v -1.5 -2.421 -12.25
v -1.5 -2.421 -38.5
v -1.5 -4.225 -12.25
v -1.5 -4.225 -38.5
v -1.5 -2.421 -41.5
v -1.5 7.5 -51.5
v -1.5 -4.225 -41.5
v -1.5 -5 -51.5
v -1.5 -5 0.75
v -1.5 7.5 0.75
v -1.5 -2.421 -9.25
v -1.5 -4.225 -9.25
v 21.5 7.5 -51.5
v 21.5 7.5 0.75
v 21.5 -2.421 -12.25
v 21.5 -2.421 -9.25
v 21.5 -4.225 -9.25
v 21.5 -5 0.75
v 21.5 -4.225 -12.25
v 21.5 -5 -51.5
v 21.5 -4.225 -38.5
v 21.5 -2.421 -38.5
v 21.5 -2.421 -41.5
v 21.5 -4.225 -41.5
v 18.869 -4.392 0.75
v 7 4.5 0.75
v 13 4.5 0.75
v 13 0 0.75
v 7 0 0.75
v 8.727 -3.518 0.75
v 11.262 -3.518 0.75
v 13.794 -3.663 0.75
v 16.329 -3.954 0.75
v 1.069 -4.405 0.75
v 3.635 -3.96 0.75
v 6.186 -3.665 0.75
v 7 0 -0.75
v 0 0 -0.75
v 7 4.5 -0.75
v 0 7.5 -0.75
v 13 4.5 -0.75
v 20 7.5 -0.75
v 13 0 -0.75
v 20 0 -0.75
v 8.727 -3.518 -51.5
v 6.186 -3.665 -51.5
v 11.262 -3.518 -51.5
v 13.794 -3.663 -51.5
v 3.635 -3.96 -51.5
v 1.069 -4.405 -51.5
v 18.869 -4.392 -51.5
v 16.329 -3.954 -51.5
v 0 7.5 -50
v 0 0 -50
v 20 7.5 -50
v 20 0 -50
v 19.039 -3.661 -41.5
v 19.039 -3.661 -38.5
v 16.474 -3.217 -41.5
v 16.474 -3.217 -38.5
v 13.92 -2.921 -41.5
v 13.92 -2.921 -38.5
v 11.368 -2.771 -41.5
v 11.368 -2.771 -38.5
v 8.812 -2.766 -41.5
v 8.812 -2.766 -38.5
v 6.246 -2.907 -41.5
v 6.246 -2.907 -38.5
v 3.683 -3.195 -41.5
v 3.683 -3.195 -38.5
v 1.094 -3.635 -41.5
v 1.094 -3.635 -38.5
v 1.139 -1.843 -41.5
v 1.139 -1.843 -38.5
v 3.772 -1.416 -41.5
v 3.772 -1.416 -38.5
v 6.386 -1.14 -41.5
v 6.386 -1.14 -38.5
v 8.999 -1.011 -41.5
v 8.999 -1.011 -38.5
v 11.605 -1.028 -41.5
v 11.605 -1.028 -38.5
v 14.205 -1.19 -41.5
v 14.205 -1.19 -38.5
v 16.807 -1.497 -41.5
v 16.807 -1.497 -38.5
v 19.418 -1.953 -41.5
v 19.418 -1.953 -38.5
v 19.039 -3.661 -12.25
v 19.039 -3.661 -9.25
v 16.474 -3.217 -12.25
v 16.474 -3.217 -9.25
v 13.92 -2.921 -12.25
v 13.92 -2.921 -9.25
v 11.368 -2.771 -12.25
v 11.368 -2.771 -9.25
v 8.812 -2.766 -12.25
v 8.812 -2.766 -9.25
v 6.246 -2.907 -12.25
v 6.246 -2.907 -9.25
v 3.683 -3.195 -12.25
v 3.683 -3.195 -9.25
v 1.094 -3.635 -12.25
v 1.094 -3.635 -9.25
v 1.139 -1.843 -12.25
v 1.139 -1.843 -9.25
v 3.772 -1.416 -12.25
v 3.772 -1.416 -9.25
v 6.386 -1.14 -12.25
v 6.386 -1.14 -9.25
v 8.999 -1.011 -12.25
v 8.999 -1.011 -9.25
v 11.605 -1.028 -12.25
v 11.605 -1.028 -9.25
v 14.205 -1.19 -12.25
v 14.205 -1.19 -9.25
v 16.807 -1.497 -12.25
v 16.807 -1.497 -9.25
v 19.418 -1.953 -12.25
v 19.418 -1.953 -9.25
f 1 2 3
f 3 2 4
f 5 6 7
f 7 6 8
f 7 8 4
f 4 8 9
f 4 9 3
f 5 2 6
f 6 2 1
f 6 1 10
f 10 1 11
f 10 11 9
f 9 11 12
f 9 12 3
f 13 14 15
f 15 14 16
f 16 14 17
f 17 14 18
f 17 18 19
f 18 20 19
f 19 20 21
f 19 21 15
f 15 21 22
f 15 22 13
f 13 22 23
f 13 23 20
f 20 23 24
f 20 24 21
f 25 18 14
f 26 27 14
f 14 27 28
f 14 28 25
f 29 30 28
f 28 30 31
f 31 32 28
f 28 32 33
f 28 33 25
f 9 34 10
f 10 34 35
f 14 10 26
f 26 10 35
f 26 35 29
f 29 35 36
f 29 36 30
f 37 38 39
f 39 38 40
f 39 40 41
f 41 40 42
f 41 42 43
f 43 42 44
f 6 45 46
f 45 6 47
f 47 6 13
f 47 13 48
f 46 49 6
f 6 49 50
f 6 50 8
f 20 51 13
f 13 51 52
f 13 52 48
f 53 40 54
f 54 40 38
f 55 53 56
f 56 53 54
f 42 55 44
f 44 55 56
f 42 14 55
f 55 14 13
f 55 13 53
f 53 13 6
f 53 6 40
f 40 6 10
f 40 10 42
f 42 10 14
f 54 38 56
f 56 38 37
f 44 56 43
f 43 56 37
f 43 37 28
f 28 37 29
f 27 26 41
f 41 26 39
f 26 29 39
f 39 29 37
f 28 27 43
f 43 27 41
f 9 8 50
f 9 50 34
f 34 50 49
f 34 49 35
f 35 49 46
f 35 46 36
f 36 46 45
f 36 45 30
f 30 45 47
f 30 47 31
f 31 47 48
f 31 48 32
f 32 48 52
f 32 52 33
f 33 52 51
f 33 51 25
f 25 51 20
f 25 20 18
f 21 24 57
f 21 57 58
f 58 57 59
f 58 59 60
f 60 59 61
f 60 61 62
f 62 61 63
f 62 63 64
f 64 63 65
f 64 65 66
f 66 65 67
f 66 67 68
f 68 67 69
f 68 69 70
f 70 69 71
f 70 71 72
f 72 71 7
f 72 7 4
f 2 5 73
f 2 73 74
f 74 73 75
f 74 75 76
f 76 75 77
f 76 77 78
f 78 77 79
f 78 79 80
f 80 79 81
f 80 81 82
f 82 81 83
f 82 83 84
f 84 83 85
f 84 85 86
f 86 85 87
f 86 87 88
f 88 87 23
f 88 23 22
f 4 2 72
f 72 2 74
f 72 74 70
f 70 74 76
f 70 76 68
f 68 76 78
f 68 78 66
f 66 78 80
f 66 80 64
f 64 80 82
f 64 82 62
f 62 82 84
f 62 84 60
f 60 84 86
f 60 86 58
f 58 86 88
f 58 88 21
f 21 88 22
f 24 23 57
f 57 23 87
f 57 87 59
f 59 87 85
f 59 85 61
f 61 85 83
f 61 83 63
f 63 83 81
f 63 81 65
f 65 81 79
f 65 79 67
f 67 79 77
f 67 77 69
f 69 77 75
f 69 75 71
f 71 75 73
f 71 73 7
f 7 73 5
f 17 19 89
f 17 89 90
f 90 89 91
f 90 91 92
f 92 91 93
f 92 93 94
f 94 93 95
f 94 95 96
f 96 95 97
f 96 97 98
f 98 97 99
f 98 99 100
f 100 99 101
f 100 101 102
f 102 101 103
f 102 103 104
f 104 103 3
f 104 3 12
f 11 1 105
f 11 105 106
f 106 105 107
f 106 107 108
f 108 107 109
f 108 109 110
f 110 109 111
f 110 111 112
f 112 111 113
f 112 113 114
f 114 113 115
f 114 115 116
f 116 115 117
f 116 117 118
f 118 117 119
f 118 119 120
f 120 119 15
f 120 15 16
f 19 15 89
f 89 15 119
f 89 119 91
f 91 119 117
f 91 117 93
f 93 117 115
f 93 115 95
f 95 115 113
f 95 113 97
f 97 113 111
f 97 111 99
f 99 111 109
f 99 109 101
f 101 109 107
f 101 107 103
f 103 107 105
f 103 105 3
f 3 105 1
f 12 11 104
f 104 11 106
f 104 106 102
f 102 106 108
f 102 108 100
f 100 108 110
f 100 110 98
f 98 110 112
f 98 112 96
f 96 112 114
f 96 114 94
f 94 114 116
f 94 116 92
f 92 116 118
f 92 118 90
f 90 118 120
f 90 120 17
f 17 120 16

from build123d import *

# Parameters (mm, degrees)
SKETCH2_W           = 23
SKETCH2_H           = 52.25
SKETCH2_W_2         = 20
SKETCH2_H_2         = 49.25
BOSS_EXTRUDE1_DEPTH = 7.5
SKETCH3_W           = 23
SKETCH3_H           = 52.25
BOSS_EXTRUDE2_DEPTH = 5
SKETCH4_W           = 6
SKETCH4_H           = 4.5
CUT_EXTRUDE1_DEPTH  = 1.5
CUT_EXTRUDE2_DEPTH  = 72.5
CUT_EXTRUDE3_START  = -3
CUT_EXTRUDE3_DEPTH  = 3
CUT_EXTRUDE4_DEPTH  = 3


# Read off the part's stored shape, not the designer's step: Cut-Extrude3
with BuildPart() as part:
    # Sketch2 → Boss-Extrude1 (new body)
    with BuildSketch(Plane(origin=(0, 0, 0), x_dir=(1, 0, 0), z_dir=(0, 1, 0))):
        with Locations((10, 25.375)):
            Rectangle(SKETCH2_W, SKETCH2_H)
        with Locations((10, 25.375)):
            Rectangle(SKETCH2_W_2, SKETCH2_H_2, mode=Mode.SUBTRACT)
    extrude(amount=BOSS_EXTRUDE1_DEPTH)

    # Sketch3 → Boss-Extrude2 (add)
    with BuildSketch(Plane.XZ):
        with Locations((10, -25.375)):
            Rectangle(SKETCH3_W, SKETCH3_H)
    extrude(amount=BOSS_EXTRUDE2_DEPTH)

    # Sketch4 → Cut-Extrude1 (cut)
    with BuildSketch(Plane(origin=(0, 0, -0.75), x_dir=(-1, 0, 0), z_dir=(0, 0, -1))):
        with Locations((-10, 2.25)):
            Rectangle(SKETCH4_W, SKETCH4_H)
    extrude(amount=-CUT_EXTRUDE1_DEPTH, mode=Mode.SUBTRACT)

    # Sketch5 → Cut-Extrude2 (cut)
    with BuildSketch(Plane(origin=(0, 0, -51.5), x_dir=(-1, 0, 0), z_dir=(0, 0, -1))):
        with BuildLine():
            Line((1.5, -5), (-21.5, -5))
            add(Edge.make_bspline(
                [(1.5, -5), (-10, -2), (-21.5, -5)],
                knots=[0, 0, 0, 1, 1, 1], degree=2))
        make_face()
    extrude(amount=-CUT_EXTRUDE2_DEPTH, mode=Mode.SUBTRACT)

    # Cut-Extrude3 outline → Cut-Extrude3 (cut)
    with BuildSketch(Plane(origin=(0, 0, -41.5), x_dir=(-1, 0, 0), z_dir=(0, 0, -1)).offset(CUT_EXTRUDE3_START)):
        with BuildLine():
            add(Edge.make_bspline(
                [(1.500000004, -4.225305609), (0.595466246, -3.993211731), (-1.297330219, -3.56483897), (-5.125081209, -2.941229912), (-10, -2.622513392), (-14.874918791, -2.941229912), (-18.702669782, -3.56483897), (-20.595466246, -3.993211731), (-21.500000004, -4.225305609)],
                knots=[0.499397619, 0.499397619, 0.499397619, 0.499397619, 0.499540721, 0.499693814, 0.5, 0.500306186, 0.500459279, 0.500602381, 0.500602381, 0.500602381, 0.500602381], degree=3))
            Line((1.500000004, -4.225305609), (1.5, -2.420629216))
            add(Edge.make_bspline(
                [(1.5, -2.420629216), (0.70515637, -2.224171116), (-1.108540102, -1.822242739), (-4.935012294, -1.198704697), (-10, -0.867469997), (-15.064987706, -1.198704697), (-18.891459898, -1.822242739), (-20.70515637, -2.224171116), (-21.499999999, -2.420629215)],
                knots=[0.499419719, 0.499419719, 0.499419719, 0.499419719, 0.499540721, 0.499693814, 0.5, 0.500306186, 0.500459279, 0.500580281, 0.500580281, 0.500580281, 0.500580281], degree=3))
            Line((-21.499999999, -2.420629215), (-21.500000004, -4.225305609))
        make_face()
    extrude(amount=CUT_EXTRUDE3_DEPTH, mode=Mode.SUBTRACT)

    # Sketch7 → Cut-Extrude4 (cut)
    with BuildSketch(Plane.XY.offset(-9.25)):
        with BuildLine():
            Line((-1.499999999, -2.420629215), (-1.500000004, -4.225305609))
            add(Edge.make_bspline(
                [(-1.500000004, -4.225305609), (-0.595466246, -3.993211731), (1.297330219, -3.56483897), (5.125081209, -2.941229912), (10, -2.622513392), (14.874918791, -2.941229912), (18.702669782, -3.56483897), (20.595466246, -3.993211731), (21.500000004, -4.225305609)],
                knots=[0.499397619, 0.499397619, 0.499397619, 0.499397619, 0.499540721, 0.499693814, 0.5, 0.500306186, 0.500459279, 0.500602381, 0.500602381, 0.500602381, 0.500602381], degree=3))
            Line((21.500000004, -4.225305609), (21.499999999, -2.420629215))
            add(Edge.make_bspline(
                [(21.499999999, -2.420629215), (20.70515637, -2.224171116), (18.891459898, -1.822242739), (15.064987706, -1.198704697), (10, -0.867469997), (4.935012294, -1.198704697), (1.108540102, -1.822242739), (-0.70515637, -2.224171116), (-1.499999999, -2.420629215)],
                knots=[0.499419719, 0.499419719, 0.499419719, 0.499419719, 0.499540721, 0.499693814, 0.5, 0.500306186, 0.500459279, 0.500580281, 0.500580281, 0.500580281, 0.500580281], degree=3))
        make_face()
    extrude(amount=-CUT_EXTRUDE4_DEPTH, mode=Mode.SUBTRACT)


solid = part.part
